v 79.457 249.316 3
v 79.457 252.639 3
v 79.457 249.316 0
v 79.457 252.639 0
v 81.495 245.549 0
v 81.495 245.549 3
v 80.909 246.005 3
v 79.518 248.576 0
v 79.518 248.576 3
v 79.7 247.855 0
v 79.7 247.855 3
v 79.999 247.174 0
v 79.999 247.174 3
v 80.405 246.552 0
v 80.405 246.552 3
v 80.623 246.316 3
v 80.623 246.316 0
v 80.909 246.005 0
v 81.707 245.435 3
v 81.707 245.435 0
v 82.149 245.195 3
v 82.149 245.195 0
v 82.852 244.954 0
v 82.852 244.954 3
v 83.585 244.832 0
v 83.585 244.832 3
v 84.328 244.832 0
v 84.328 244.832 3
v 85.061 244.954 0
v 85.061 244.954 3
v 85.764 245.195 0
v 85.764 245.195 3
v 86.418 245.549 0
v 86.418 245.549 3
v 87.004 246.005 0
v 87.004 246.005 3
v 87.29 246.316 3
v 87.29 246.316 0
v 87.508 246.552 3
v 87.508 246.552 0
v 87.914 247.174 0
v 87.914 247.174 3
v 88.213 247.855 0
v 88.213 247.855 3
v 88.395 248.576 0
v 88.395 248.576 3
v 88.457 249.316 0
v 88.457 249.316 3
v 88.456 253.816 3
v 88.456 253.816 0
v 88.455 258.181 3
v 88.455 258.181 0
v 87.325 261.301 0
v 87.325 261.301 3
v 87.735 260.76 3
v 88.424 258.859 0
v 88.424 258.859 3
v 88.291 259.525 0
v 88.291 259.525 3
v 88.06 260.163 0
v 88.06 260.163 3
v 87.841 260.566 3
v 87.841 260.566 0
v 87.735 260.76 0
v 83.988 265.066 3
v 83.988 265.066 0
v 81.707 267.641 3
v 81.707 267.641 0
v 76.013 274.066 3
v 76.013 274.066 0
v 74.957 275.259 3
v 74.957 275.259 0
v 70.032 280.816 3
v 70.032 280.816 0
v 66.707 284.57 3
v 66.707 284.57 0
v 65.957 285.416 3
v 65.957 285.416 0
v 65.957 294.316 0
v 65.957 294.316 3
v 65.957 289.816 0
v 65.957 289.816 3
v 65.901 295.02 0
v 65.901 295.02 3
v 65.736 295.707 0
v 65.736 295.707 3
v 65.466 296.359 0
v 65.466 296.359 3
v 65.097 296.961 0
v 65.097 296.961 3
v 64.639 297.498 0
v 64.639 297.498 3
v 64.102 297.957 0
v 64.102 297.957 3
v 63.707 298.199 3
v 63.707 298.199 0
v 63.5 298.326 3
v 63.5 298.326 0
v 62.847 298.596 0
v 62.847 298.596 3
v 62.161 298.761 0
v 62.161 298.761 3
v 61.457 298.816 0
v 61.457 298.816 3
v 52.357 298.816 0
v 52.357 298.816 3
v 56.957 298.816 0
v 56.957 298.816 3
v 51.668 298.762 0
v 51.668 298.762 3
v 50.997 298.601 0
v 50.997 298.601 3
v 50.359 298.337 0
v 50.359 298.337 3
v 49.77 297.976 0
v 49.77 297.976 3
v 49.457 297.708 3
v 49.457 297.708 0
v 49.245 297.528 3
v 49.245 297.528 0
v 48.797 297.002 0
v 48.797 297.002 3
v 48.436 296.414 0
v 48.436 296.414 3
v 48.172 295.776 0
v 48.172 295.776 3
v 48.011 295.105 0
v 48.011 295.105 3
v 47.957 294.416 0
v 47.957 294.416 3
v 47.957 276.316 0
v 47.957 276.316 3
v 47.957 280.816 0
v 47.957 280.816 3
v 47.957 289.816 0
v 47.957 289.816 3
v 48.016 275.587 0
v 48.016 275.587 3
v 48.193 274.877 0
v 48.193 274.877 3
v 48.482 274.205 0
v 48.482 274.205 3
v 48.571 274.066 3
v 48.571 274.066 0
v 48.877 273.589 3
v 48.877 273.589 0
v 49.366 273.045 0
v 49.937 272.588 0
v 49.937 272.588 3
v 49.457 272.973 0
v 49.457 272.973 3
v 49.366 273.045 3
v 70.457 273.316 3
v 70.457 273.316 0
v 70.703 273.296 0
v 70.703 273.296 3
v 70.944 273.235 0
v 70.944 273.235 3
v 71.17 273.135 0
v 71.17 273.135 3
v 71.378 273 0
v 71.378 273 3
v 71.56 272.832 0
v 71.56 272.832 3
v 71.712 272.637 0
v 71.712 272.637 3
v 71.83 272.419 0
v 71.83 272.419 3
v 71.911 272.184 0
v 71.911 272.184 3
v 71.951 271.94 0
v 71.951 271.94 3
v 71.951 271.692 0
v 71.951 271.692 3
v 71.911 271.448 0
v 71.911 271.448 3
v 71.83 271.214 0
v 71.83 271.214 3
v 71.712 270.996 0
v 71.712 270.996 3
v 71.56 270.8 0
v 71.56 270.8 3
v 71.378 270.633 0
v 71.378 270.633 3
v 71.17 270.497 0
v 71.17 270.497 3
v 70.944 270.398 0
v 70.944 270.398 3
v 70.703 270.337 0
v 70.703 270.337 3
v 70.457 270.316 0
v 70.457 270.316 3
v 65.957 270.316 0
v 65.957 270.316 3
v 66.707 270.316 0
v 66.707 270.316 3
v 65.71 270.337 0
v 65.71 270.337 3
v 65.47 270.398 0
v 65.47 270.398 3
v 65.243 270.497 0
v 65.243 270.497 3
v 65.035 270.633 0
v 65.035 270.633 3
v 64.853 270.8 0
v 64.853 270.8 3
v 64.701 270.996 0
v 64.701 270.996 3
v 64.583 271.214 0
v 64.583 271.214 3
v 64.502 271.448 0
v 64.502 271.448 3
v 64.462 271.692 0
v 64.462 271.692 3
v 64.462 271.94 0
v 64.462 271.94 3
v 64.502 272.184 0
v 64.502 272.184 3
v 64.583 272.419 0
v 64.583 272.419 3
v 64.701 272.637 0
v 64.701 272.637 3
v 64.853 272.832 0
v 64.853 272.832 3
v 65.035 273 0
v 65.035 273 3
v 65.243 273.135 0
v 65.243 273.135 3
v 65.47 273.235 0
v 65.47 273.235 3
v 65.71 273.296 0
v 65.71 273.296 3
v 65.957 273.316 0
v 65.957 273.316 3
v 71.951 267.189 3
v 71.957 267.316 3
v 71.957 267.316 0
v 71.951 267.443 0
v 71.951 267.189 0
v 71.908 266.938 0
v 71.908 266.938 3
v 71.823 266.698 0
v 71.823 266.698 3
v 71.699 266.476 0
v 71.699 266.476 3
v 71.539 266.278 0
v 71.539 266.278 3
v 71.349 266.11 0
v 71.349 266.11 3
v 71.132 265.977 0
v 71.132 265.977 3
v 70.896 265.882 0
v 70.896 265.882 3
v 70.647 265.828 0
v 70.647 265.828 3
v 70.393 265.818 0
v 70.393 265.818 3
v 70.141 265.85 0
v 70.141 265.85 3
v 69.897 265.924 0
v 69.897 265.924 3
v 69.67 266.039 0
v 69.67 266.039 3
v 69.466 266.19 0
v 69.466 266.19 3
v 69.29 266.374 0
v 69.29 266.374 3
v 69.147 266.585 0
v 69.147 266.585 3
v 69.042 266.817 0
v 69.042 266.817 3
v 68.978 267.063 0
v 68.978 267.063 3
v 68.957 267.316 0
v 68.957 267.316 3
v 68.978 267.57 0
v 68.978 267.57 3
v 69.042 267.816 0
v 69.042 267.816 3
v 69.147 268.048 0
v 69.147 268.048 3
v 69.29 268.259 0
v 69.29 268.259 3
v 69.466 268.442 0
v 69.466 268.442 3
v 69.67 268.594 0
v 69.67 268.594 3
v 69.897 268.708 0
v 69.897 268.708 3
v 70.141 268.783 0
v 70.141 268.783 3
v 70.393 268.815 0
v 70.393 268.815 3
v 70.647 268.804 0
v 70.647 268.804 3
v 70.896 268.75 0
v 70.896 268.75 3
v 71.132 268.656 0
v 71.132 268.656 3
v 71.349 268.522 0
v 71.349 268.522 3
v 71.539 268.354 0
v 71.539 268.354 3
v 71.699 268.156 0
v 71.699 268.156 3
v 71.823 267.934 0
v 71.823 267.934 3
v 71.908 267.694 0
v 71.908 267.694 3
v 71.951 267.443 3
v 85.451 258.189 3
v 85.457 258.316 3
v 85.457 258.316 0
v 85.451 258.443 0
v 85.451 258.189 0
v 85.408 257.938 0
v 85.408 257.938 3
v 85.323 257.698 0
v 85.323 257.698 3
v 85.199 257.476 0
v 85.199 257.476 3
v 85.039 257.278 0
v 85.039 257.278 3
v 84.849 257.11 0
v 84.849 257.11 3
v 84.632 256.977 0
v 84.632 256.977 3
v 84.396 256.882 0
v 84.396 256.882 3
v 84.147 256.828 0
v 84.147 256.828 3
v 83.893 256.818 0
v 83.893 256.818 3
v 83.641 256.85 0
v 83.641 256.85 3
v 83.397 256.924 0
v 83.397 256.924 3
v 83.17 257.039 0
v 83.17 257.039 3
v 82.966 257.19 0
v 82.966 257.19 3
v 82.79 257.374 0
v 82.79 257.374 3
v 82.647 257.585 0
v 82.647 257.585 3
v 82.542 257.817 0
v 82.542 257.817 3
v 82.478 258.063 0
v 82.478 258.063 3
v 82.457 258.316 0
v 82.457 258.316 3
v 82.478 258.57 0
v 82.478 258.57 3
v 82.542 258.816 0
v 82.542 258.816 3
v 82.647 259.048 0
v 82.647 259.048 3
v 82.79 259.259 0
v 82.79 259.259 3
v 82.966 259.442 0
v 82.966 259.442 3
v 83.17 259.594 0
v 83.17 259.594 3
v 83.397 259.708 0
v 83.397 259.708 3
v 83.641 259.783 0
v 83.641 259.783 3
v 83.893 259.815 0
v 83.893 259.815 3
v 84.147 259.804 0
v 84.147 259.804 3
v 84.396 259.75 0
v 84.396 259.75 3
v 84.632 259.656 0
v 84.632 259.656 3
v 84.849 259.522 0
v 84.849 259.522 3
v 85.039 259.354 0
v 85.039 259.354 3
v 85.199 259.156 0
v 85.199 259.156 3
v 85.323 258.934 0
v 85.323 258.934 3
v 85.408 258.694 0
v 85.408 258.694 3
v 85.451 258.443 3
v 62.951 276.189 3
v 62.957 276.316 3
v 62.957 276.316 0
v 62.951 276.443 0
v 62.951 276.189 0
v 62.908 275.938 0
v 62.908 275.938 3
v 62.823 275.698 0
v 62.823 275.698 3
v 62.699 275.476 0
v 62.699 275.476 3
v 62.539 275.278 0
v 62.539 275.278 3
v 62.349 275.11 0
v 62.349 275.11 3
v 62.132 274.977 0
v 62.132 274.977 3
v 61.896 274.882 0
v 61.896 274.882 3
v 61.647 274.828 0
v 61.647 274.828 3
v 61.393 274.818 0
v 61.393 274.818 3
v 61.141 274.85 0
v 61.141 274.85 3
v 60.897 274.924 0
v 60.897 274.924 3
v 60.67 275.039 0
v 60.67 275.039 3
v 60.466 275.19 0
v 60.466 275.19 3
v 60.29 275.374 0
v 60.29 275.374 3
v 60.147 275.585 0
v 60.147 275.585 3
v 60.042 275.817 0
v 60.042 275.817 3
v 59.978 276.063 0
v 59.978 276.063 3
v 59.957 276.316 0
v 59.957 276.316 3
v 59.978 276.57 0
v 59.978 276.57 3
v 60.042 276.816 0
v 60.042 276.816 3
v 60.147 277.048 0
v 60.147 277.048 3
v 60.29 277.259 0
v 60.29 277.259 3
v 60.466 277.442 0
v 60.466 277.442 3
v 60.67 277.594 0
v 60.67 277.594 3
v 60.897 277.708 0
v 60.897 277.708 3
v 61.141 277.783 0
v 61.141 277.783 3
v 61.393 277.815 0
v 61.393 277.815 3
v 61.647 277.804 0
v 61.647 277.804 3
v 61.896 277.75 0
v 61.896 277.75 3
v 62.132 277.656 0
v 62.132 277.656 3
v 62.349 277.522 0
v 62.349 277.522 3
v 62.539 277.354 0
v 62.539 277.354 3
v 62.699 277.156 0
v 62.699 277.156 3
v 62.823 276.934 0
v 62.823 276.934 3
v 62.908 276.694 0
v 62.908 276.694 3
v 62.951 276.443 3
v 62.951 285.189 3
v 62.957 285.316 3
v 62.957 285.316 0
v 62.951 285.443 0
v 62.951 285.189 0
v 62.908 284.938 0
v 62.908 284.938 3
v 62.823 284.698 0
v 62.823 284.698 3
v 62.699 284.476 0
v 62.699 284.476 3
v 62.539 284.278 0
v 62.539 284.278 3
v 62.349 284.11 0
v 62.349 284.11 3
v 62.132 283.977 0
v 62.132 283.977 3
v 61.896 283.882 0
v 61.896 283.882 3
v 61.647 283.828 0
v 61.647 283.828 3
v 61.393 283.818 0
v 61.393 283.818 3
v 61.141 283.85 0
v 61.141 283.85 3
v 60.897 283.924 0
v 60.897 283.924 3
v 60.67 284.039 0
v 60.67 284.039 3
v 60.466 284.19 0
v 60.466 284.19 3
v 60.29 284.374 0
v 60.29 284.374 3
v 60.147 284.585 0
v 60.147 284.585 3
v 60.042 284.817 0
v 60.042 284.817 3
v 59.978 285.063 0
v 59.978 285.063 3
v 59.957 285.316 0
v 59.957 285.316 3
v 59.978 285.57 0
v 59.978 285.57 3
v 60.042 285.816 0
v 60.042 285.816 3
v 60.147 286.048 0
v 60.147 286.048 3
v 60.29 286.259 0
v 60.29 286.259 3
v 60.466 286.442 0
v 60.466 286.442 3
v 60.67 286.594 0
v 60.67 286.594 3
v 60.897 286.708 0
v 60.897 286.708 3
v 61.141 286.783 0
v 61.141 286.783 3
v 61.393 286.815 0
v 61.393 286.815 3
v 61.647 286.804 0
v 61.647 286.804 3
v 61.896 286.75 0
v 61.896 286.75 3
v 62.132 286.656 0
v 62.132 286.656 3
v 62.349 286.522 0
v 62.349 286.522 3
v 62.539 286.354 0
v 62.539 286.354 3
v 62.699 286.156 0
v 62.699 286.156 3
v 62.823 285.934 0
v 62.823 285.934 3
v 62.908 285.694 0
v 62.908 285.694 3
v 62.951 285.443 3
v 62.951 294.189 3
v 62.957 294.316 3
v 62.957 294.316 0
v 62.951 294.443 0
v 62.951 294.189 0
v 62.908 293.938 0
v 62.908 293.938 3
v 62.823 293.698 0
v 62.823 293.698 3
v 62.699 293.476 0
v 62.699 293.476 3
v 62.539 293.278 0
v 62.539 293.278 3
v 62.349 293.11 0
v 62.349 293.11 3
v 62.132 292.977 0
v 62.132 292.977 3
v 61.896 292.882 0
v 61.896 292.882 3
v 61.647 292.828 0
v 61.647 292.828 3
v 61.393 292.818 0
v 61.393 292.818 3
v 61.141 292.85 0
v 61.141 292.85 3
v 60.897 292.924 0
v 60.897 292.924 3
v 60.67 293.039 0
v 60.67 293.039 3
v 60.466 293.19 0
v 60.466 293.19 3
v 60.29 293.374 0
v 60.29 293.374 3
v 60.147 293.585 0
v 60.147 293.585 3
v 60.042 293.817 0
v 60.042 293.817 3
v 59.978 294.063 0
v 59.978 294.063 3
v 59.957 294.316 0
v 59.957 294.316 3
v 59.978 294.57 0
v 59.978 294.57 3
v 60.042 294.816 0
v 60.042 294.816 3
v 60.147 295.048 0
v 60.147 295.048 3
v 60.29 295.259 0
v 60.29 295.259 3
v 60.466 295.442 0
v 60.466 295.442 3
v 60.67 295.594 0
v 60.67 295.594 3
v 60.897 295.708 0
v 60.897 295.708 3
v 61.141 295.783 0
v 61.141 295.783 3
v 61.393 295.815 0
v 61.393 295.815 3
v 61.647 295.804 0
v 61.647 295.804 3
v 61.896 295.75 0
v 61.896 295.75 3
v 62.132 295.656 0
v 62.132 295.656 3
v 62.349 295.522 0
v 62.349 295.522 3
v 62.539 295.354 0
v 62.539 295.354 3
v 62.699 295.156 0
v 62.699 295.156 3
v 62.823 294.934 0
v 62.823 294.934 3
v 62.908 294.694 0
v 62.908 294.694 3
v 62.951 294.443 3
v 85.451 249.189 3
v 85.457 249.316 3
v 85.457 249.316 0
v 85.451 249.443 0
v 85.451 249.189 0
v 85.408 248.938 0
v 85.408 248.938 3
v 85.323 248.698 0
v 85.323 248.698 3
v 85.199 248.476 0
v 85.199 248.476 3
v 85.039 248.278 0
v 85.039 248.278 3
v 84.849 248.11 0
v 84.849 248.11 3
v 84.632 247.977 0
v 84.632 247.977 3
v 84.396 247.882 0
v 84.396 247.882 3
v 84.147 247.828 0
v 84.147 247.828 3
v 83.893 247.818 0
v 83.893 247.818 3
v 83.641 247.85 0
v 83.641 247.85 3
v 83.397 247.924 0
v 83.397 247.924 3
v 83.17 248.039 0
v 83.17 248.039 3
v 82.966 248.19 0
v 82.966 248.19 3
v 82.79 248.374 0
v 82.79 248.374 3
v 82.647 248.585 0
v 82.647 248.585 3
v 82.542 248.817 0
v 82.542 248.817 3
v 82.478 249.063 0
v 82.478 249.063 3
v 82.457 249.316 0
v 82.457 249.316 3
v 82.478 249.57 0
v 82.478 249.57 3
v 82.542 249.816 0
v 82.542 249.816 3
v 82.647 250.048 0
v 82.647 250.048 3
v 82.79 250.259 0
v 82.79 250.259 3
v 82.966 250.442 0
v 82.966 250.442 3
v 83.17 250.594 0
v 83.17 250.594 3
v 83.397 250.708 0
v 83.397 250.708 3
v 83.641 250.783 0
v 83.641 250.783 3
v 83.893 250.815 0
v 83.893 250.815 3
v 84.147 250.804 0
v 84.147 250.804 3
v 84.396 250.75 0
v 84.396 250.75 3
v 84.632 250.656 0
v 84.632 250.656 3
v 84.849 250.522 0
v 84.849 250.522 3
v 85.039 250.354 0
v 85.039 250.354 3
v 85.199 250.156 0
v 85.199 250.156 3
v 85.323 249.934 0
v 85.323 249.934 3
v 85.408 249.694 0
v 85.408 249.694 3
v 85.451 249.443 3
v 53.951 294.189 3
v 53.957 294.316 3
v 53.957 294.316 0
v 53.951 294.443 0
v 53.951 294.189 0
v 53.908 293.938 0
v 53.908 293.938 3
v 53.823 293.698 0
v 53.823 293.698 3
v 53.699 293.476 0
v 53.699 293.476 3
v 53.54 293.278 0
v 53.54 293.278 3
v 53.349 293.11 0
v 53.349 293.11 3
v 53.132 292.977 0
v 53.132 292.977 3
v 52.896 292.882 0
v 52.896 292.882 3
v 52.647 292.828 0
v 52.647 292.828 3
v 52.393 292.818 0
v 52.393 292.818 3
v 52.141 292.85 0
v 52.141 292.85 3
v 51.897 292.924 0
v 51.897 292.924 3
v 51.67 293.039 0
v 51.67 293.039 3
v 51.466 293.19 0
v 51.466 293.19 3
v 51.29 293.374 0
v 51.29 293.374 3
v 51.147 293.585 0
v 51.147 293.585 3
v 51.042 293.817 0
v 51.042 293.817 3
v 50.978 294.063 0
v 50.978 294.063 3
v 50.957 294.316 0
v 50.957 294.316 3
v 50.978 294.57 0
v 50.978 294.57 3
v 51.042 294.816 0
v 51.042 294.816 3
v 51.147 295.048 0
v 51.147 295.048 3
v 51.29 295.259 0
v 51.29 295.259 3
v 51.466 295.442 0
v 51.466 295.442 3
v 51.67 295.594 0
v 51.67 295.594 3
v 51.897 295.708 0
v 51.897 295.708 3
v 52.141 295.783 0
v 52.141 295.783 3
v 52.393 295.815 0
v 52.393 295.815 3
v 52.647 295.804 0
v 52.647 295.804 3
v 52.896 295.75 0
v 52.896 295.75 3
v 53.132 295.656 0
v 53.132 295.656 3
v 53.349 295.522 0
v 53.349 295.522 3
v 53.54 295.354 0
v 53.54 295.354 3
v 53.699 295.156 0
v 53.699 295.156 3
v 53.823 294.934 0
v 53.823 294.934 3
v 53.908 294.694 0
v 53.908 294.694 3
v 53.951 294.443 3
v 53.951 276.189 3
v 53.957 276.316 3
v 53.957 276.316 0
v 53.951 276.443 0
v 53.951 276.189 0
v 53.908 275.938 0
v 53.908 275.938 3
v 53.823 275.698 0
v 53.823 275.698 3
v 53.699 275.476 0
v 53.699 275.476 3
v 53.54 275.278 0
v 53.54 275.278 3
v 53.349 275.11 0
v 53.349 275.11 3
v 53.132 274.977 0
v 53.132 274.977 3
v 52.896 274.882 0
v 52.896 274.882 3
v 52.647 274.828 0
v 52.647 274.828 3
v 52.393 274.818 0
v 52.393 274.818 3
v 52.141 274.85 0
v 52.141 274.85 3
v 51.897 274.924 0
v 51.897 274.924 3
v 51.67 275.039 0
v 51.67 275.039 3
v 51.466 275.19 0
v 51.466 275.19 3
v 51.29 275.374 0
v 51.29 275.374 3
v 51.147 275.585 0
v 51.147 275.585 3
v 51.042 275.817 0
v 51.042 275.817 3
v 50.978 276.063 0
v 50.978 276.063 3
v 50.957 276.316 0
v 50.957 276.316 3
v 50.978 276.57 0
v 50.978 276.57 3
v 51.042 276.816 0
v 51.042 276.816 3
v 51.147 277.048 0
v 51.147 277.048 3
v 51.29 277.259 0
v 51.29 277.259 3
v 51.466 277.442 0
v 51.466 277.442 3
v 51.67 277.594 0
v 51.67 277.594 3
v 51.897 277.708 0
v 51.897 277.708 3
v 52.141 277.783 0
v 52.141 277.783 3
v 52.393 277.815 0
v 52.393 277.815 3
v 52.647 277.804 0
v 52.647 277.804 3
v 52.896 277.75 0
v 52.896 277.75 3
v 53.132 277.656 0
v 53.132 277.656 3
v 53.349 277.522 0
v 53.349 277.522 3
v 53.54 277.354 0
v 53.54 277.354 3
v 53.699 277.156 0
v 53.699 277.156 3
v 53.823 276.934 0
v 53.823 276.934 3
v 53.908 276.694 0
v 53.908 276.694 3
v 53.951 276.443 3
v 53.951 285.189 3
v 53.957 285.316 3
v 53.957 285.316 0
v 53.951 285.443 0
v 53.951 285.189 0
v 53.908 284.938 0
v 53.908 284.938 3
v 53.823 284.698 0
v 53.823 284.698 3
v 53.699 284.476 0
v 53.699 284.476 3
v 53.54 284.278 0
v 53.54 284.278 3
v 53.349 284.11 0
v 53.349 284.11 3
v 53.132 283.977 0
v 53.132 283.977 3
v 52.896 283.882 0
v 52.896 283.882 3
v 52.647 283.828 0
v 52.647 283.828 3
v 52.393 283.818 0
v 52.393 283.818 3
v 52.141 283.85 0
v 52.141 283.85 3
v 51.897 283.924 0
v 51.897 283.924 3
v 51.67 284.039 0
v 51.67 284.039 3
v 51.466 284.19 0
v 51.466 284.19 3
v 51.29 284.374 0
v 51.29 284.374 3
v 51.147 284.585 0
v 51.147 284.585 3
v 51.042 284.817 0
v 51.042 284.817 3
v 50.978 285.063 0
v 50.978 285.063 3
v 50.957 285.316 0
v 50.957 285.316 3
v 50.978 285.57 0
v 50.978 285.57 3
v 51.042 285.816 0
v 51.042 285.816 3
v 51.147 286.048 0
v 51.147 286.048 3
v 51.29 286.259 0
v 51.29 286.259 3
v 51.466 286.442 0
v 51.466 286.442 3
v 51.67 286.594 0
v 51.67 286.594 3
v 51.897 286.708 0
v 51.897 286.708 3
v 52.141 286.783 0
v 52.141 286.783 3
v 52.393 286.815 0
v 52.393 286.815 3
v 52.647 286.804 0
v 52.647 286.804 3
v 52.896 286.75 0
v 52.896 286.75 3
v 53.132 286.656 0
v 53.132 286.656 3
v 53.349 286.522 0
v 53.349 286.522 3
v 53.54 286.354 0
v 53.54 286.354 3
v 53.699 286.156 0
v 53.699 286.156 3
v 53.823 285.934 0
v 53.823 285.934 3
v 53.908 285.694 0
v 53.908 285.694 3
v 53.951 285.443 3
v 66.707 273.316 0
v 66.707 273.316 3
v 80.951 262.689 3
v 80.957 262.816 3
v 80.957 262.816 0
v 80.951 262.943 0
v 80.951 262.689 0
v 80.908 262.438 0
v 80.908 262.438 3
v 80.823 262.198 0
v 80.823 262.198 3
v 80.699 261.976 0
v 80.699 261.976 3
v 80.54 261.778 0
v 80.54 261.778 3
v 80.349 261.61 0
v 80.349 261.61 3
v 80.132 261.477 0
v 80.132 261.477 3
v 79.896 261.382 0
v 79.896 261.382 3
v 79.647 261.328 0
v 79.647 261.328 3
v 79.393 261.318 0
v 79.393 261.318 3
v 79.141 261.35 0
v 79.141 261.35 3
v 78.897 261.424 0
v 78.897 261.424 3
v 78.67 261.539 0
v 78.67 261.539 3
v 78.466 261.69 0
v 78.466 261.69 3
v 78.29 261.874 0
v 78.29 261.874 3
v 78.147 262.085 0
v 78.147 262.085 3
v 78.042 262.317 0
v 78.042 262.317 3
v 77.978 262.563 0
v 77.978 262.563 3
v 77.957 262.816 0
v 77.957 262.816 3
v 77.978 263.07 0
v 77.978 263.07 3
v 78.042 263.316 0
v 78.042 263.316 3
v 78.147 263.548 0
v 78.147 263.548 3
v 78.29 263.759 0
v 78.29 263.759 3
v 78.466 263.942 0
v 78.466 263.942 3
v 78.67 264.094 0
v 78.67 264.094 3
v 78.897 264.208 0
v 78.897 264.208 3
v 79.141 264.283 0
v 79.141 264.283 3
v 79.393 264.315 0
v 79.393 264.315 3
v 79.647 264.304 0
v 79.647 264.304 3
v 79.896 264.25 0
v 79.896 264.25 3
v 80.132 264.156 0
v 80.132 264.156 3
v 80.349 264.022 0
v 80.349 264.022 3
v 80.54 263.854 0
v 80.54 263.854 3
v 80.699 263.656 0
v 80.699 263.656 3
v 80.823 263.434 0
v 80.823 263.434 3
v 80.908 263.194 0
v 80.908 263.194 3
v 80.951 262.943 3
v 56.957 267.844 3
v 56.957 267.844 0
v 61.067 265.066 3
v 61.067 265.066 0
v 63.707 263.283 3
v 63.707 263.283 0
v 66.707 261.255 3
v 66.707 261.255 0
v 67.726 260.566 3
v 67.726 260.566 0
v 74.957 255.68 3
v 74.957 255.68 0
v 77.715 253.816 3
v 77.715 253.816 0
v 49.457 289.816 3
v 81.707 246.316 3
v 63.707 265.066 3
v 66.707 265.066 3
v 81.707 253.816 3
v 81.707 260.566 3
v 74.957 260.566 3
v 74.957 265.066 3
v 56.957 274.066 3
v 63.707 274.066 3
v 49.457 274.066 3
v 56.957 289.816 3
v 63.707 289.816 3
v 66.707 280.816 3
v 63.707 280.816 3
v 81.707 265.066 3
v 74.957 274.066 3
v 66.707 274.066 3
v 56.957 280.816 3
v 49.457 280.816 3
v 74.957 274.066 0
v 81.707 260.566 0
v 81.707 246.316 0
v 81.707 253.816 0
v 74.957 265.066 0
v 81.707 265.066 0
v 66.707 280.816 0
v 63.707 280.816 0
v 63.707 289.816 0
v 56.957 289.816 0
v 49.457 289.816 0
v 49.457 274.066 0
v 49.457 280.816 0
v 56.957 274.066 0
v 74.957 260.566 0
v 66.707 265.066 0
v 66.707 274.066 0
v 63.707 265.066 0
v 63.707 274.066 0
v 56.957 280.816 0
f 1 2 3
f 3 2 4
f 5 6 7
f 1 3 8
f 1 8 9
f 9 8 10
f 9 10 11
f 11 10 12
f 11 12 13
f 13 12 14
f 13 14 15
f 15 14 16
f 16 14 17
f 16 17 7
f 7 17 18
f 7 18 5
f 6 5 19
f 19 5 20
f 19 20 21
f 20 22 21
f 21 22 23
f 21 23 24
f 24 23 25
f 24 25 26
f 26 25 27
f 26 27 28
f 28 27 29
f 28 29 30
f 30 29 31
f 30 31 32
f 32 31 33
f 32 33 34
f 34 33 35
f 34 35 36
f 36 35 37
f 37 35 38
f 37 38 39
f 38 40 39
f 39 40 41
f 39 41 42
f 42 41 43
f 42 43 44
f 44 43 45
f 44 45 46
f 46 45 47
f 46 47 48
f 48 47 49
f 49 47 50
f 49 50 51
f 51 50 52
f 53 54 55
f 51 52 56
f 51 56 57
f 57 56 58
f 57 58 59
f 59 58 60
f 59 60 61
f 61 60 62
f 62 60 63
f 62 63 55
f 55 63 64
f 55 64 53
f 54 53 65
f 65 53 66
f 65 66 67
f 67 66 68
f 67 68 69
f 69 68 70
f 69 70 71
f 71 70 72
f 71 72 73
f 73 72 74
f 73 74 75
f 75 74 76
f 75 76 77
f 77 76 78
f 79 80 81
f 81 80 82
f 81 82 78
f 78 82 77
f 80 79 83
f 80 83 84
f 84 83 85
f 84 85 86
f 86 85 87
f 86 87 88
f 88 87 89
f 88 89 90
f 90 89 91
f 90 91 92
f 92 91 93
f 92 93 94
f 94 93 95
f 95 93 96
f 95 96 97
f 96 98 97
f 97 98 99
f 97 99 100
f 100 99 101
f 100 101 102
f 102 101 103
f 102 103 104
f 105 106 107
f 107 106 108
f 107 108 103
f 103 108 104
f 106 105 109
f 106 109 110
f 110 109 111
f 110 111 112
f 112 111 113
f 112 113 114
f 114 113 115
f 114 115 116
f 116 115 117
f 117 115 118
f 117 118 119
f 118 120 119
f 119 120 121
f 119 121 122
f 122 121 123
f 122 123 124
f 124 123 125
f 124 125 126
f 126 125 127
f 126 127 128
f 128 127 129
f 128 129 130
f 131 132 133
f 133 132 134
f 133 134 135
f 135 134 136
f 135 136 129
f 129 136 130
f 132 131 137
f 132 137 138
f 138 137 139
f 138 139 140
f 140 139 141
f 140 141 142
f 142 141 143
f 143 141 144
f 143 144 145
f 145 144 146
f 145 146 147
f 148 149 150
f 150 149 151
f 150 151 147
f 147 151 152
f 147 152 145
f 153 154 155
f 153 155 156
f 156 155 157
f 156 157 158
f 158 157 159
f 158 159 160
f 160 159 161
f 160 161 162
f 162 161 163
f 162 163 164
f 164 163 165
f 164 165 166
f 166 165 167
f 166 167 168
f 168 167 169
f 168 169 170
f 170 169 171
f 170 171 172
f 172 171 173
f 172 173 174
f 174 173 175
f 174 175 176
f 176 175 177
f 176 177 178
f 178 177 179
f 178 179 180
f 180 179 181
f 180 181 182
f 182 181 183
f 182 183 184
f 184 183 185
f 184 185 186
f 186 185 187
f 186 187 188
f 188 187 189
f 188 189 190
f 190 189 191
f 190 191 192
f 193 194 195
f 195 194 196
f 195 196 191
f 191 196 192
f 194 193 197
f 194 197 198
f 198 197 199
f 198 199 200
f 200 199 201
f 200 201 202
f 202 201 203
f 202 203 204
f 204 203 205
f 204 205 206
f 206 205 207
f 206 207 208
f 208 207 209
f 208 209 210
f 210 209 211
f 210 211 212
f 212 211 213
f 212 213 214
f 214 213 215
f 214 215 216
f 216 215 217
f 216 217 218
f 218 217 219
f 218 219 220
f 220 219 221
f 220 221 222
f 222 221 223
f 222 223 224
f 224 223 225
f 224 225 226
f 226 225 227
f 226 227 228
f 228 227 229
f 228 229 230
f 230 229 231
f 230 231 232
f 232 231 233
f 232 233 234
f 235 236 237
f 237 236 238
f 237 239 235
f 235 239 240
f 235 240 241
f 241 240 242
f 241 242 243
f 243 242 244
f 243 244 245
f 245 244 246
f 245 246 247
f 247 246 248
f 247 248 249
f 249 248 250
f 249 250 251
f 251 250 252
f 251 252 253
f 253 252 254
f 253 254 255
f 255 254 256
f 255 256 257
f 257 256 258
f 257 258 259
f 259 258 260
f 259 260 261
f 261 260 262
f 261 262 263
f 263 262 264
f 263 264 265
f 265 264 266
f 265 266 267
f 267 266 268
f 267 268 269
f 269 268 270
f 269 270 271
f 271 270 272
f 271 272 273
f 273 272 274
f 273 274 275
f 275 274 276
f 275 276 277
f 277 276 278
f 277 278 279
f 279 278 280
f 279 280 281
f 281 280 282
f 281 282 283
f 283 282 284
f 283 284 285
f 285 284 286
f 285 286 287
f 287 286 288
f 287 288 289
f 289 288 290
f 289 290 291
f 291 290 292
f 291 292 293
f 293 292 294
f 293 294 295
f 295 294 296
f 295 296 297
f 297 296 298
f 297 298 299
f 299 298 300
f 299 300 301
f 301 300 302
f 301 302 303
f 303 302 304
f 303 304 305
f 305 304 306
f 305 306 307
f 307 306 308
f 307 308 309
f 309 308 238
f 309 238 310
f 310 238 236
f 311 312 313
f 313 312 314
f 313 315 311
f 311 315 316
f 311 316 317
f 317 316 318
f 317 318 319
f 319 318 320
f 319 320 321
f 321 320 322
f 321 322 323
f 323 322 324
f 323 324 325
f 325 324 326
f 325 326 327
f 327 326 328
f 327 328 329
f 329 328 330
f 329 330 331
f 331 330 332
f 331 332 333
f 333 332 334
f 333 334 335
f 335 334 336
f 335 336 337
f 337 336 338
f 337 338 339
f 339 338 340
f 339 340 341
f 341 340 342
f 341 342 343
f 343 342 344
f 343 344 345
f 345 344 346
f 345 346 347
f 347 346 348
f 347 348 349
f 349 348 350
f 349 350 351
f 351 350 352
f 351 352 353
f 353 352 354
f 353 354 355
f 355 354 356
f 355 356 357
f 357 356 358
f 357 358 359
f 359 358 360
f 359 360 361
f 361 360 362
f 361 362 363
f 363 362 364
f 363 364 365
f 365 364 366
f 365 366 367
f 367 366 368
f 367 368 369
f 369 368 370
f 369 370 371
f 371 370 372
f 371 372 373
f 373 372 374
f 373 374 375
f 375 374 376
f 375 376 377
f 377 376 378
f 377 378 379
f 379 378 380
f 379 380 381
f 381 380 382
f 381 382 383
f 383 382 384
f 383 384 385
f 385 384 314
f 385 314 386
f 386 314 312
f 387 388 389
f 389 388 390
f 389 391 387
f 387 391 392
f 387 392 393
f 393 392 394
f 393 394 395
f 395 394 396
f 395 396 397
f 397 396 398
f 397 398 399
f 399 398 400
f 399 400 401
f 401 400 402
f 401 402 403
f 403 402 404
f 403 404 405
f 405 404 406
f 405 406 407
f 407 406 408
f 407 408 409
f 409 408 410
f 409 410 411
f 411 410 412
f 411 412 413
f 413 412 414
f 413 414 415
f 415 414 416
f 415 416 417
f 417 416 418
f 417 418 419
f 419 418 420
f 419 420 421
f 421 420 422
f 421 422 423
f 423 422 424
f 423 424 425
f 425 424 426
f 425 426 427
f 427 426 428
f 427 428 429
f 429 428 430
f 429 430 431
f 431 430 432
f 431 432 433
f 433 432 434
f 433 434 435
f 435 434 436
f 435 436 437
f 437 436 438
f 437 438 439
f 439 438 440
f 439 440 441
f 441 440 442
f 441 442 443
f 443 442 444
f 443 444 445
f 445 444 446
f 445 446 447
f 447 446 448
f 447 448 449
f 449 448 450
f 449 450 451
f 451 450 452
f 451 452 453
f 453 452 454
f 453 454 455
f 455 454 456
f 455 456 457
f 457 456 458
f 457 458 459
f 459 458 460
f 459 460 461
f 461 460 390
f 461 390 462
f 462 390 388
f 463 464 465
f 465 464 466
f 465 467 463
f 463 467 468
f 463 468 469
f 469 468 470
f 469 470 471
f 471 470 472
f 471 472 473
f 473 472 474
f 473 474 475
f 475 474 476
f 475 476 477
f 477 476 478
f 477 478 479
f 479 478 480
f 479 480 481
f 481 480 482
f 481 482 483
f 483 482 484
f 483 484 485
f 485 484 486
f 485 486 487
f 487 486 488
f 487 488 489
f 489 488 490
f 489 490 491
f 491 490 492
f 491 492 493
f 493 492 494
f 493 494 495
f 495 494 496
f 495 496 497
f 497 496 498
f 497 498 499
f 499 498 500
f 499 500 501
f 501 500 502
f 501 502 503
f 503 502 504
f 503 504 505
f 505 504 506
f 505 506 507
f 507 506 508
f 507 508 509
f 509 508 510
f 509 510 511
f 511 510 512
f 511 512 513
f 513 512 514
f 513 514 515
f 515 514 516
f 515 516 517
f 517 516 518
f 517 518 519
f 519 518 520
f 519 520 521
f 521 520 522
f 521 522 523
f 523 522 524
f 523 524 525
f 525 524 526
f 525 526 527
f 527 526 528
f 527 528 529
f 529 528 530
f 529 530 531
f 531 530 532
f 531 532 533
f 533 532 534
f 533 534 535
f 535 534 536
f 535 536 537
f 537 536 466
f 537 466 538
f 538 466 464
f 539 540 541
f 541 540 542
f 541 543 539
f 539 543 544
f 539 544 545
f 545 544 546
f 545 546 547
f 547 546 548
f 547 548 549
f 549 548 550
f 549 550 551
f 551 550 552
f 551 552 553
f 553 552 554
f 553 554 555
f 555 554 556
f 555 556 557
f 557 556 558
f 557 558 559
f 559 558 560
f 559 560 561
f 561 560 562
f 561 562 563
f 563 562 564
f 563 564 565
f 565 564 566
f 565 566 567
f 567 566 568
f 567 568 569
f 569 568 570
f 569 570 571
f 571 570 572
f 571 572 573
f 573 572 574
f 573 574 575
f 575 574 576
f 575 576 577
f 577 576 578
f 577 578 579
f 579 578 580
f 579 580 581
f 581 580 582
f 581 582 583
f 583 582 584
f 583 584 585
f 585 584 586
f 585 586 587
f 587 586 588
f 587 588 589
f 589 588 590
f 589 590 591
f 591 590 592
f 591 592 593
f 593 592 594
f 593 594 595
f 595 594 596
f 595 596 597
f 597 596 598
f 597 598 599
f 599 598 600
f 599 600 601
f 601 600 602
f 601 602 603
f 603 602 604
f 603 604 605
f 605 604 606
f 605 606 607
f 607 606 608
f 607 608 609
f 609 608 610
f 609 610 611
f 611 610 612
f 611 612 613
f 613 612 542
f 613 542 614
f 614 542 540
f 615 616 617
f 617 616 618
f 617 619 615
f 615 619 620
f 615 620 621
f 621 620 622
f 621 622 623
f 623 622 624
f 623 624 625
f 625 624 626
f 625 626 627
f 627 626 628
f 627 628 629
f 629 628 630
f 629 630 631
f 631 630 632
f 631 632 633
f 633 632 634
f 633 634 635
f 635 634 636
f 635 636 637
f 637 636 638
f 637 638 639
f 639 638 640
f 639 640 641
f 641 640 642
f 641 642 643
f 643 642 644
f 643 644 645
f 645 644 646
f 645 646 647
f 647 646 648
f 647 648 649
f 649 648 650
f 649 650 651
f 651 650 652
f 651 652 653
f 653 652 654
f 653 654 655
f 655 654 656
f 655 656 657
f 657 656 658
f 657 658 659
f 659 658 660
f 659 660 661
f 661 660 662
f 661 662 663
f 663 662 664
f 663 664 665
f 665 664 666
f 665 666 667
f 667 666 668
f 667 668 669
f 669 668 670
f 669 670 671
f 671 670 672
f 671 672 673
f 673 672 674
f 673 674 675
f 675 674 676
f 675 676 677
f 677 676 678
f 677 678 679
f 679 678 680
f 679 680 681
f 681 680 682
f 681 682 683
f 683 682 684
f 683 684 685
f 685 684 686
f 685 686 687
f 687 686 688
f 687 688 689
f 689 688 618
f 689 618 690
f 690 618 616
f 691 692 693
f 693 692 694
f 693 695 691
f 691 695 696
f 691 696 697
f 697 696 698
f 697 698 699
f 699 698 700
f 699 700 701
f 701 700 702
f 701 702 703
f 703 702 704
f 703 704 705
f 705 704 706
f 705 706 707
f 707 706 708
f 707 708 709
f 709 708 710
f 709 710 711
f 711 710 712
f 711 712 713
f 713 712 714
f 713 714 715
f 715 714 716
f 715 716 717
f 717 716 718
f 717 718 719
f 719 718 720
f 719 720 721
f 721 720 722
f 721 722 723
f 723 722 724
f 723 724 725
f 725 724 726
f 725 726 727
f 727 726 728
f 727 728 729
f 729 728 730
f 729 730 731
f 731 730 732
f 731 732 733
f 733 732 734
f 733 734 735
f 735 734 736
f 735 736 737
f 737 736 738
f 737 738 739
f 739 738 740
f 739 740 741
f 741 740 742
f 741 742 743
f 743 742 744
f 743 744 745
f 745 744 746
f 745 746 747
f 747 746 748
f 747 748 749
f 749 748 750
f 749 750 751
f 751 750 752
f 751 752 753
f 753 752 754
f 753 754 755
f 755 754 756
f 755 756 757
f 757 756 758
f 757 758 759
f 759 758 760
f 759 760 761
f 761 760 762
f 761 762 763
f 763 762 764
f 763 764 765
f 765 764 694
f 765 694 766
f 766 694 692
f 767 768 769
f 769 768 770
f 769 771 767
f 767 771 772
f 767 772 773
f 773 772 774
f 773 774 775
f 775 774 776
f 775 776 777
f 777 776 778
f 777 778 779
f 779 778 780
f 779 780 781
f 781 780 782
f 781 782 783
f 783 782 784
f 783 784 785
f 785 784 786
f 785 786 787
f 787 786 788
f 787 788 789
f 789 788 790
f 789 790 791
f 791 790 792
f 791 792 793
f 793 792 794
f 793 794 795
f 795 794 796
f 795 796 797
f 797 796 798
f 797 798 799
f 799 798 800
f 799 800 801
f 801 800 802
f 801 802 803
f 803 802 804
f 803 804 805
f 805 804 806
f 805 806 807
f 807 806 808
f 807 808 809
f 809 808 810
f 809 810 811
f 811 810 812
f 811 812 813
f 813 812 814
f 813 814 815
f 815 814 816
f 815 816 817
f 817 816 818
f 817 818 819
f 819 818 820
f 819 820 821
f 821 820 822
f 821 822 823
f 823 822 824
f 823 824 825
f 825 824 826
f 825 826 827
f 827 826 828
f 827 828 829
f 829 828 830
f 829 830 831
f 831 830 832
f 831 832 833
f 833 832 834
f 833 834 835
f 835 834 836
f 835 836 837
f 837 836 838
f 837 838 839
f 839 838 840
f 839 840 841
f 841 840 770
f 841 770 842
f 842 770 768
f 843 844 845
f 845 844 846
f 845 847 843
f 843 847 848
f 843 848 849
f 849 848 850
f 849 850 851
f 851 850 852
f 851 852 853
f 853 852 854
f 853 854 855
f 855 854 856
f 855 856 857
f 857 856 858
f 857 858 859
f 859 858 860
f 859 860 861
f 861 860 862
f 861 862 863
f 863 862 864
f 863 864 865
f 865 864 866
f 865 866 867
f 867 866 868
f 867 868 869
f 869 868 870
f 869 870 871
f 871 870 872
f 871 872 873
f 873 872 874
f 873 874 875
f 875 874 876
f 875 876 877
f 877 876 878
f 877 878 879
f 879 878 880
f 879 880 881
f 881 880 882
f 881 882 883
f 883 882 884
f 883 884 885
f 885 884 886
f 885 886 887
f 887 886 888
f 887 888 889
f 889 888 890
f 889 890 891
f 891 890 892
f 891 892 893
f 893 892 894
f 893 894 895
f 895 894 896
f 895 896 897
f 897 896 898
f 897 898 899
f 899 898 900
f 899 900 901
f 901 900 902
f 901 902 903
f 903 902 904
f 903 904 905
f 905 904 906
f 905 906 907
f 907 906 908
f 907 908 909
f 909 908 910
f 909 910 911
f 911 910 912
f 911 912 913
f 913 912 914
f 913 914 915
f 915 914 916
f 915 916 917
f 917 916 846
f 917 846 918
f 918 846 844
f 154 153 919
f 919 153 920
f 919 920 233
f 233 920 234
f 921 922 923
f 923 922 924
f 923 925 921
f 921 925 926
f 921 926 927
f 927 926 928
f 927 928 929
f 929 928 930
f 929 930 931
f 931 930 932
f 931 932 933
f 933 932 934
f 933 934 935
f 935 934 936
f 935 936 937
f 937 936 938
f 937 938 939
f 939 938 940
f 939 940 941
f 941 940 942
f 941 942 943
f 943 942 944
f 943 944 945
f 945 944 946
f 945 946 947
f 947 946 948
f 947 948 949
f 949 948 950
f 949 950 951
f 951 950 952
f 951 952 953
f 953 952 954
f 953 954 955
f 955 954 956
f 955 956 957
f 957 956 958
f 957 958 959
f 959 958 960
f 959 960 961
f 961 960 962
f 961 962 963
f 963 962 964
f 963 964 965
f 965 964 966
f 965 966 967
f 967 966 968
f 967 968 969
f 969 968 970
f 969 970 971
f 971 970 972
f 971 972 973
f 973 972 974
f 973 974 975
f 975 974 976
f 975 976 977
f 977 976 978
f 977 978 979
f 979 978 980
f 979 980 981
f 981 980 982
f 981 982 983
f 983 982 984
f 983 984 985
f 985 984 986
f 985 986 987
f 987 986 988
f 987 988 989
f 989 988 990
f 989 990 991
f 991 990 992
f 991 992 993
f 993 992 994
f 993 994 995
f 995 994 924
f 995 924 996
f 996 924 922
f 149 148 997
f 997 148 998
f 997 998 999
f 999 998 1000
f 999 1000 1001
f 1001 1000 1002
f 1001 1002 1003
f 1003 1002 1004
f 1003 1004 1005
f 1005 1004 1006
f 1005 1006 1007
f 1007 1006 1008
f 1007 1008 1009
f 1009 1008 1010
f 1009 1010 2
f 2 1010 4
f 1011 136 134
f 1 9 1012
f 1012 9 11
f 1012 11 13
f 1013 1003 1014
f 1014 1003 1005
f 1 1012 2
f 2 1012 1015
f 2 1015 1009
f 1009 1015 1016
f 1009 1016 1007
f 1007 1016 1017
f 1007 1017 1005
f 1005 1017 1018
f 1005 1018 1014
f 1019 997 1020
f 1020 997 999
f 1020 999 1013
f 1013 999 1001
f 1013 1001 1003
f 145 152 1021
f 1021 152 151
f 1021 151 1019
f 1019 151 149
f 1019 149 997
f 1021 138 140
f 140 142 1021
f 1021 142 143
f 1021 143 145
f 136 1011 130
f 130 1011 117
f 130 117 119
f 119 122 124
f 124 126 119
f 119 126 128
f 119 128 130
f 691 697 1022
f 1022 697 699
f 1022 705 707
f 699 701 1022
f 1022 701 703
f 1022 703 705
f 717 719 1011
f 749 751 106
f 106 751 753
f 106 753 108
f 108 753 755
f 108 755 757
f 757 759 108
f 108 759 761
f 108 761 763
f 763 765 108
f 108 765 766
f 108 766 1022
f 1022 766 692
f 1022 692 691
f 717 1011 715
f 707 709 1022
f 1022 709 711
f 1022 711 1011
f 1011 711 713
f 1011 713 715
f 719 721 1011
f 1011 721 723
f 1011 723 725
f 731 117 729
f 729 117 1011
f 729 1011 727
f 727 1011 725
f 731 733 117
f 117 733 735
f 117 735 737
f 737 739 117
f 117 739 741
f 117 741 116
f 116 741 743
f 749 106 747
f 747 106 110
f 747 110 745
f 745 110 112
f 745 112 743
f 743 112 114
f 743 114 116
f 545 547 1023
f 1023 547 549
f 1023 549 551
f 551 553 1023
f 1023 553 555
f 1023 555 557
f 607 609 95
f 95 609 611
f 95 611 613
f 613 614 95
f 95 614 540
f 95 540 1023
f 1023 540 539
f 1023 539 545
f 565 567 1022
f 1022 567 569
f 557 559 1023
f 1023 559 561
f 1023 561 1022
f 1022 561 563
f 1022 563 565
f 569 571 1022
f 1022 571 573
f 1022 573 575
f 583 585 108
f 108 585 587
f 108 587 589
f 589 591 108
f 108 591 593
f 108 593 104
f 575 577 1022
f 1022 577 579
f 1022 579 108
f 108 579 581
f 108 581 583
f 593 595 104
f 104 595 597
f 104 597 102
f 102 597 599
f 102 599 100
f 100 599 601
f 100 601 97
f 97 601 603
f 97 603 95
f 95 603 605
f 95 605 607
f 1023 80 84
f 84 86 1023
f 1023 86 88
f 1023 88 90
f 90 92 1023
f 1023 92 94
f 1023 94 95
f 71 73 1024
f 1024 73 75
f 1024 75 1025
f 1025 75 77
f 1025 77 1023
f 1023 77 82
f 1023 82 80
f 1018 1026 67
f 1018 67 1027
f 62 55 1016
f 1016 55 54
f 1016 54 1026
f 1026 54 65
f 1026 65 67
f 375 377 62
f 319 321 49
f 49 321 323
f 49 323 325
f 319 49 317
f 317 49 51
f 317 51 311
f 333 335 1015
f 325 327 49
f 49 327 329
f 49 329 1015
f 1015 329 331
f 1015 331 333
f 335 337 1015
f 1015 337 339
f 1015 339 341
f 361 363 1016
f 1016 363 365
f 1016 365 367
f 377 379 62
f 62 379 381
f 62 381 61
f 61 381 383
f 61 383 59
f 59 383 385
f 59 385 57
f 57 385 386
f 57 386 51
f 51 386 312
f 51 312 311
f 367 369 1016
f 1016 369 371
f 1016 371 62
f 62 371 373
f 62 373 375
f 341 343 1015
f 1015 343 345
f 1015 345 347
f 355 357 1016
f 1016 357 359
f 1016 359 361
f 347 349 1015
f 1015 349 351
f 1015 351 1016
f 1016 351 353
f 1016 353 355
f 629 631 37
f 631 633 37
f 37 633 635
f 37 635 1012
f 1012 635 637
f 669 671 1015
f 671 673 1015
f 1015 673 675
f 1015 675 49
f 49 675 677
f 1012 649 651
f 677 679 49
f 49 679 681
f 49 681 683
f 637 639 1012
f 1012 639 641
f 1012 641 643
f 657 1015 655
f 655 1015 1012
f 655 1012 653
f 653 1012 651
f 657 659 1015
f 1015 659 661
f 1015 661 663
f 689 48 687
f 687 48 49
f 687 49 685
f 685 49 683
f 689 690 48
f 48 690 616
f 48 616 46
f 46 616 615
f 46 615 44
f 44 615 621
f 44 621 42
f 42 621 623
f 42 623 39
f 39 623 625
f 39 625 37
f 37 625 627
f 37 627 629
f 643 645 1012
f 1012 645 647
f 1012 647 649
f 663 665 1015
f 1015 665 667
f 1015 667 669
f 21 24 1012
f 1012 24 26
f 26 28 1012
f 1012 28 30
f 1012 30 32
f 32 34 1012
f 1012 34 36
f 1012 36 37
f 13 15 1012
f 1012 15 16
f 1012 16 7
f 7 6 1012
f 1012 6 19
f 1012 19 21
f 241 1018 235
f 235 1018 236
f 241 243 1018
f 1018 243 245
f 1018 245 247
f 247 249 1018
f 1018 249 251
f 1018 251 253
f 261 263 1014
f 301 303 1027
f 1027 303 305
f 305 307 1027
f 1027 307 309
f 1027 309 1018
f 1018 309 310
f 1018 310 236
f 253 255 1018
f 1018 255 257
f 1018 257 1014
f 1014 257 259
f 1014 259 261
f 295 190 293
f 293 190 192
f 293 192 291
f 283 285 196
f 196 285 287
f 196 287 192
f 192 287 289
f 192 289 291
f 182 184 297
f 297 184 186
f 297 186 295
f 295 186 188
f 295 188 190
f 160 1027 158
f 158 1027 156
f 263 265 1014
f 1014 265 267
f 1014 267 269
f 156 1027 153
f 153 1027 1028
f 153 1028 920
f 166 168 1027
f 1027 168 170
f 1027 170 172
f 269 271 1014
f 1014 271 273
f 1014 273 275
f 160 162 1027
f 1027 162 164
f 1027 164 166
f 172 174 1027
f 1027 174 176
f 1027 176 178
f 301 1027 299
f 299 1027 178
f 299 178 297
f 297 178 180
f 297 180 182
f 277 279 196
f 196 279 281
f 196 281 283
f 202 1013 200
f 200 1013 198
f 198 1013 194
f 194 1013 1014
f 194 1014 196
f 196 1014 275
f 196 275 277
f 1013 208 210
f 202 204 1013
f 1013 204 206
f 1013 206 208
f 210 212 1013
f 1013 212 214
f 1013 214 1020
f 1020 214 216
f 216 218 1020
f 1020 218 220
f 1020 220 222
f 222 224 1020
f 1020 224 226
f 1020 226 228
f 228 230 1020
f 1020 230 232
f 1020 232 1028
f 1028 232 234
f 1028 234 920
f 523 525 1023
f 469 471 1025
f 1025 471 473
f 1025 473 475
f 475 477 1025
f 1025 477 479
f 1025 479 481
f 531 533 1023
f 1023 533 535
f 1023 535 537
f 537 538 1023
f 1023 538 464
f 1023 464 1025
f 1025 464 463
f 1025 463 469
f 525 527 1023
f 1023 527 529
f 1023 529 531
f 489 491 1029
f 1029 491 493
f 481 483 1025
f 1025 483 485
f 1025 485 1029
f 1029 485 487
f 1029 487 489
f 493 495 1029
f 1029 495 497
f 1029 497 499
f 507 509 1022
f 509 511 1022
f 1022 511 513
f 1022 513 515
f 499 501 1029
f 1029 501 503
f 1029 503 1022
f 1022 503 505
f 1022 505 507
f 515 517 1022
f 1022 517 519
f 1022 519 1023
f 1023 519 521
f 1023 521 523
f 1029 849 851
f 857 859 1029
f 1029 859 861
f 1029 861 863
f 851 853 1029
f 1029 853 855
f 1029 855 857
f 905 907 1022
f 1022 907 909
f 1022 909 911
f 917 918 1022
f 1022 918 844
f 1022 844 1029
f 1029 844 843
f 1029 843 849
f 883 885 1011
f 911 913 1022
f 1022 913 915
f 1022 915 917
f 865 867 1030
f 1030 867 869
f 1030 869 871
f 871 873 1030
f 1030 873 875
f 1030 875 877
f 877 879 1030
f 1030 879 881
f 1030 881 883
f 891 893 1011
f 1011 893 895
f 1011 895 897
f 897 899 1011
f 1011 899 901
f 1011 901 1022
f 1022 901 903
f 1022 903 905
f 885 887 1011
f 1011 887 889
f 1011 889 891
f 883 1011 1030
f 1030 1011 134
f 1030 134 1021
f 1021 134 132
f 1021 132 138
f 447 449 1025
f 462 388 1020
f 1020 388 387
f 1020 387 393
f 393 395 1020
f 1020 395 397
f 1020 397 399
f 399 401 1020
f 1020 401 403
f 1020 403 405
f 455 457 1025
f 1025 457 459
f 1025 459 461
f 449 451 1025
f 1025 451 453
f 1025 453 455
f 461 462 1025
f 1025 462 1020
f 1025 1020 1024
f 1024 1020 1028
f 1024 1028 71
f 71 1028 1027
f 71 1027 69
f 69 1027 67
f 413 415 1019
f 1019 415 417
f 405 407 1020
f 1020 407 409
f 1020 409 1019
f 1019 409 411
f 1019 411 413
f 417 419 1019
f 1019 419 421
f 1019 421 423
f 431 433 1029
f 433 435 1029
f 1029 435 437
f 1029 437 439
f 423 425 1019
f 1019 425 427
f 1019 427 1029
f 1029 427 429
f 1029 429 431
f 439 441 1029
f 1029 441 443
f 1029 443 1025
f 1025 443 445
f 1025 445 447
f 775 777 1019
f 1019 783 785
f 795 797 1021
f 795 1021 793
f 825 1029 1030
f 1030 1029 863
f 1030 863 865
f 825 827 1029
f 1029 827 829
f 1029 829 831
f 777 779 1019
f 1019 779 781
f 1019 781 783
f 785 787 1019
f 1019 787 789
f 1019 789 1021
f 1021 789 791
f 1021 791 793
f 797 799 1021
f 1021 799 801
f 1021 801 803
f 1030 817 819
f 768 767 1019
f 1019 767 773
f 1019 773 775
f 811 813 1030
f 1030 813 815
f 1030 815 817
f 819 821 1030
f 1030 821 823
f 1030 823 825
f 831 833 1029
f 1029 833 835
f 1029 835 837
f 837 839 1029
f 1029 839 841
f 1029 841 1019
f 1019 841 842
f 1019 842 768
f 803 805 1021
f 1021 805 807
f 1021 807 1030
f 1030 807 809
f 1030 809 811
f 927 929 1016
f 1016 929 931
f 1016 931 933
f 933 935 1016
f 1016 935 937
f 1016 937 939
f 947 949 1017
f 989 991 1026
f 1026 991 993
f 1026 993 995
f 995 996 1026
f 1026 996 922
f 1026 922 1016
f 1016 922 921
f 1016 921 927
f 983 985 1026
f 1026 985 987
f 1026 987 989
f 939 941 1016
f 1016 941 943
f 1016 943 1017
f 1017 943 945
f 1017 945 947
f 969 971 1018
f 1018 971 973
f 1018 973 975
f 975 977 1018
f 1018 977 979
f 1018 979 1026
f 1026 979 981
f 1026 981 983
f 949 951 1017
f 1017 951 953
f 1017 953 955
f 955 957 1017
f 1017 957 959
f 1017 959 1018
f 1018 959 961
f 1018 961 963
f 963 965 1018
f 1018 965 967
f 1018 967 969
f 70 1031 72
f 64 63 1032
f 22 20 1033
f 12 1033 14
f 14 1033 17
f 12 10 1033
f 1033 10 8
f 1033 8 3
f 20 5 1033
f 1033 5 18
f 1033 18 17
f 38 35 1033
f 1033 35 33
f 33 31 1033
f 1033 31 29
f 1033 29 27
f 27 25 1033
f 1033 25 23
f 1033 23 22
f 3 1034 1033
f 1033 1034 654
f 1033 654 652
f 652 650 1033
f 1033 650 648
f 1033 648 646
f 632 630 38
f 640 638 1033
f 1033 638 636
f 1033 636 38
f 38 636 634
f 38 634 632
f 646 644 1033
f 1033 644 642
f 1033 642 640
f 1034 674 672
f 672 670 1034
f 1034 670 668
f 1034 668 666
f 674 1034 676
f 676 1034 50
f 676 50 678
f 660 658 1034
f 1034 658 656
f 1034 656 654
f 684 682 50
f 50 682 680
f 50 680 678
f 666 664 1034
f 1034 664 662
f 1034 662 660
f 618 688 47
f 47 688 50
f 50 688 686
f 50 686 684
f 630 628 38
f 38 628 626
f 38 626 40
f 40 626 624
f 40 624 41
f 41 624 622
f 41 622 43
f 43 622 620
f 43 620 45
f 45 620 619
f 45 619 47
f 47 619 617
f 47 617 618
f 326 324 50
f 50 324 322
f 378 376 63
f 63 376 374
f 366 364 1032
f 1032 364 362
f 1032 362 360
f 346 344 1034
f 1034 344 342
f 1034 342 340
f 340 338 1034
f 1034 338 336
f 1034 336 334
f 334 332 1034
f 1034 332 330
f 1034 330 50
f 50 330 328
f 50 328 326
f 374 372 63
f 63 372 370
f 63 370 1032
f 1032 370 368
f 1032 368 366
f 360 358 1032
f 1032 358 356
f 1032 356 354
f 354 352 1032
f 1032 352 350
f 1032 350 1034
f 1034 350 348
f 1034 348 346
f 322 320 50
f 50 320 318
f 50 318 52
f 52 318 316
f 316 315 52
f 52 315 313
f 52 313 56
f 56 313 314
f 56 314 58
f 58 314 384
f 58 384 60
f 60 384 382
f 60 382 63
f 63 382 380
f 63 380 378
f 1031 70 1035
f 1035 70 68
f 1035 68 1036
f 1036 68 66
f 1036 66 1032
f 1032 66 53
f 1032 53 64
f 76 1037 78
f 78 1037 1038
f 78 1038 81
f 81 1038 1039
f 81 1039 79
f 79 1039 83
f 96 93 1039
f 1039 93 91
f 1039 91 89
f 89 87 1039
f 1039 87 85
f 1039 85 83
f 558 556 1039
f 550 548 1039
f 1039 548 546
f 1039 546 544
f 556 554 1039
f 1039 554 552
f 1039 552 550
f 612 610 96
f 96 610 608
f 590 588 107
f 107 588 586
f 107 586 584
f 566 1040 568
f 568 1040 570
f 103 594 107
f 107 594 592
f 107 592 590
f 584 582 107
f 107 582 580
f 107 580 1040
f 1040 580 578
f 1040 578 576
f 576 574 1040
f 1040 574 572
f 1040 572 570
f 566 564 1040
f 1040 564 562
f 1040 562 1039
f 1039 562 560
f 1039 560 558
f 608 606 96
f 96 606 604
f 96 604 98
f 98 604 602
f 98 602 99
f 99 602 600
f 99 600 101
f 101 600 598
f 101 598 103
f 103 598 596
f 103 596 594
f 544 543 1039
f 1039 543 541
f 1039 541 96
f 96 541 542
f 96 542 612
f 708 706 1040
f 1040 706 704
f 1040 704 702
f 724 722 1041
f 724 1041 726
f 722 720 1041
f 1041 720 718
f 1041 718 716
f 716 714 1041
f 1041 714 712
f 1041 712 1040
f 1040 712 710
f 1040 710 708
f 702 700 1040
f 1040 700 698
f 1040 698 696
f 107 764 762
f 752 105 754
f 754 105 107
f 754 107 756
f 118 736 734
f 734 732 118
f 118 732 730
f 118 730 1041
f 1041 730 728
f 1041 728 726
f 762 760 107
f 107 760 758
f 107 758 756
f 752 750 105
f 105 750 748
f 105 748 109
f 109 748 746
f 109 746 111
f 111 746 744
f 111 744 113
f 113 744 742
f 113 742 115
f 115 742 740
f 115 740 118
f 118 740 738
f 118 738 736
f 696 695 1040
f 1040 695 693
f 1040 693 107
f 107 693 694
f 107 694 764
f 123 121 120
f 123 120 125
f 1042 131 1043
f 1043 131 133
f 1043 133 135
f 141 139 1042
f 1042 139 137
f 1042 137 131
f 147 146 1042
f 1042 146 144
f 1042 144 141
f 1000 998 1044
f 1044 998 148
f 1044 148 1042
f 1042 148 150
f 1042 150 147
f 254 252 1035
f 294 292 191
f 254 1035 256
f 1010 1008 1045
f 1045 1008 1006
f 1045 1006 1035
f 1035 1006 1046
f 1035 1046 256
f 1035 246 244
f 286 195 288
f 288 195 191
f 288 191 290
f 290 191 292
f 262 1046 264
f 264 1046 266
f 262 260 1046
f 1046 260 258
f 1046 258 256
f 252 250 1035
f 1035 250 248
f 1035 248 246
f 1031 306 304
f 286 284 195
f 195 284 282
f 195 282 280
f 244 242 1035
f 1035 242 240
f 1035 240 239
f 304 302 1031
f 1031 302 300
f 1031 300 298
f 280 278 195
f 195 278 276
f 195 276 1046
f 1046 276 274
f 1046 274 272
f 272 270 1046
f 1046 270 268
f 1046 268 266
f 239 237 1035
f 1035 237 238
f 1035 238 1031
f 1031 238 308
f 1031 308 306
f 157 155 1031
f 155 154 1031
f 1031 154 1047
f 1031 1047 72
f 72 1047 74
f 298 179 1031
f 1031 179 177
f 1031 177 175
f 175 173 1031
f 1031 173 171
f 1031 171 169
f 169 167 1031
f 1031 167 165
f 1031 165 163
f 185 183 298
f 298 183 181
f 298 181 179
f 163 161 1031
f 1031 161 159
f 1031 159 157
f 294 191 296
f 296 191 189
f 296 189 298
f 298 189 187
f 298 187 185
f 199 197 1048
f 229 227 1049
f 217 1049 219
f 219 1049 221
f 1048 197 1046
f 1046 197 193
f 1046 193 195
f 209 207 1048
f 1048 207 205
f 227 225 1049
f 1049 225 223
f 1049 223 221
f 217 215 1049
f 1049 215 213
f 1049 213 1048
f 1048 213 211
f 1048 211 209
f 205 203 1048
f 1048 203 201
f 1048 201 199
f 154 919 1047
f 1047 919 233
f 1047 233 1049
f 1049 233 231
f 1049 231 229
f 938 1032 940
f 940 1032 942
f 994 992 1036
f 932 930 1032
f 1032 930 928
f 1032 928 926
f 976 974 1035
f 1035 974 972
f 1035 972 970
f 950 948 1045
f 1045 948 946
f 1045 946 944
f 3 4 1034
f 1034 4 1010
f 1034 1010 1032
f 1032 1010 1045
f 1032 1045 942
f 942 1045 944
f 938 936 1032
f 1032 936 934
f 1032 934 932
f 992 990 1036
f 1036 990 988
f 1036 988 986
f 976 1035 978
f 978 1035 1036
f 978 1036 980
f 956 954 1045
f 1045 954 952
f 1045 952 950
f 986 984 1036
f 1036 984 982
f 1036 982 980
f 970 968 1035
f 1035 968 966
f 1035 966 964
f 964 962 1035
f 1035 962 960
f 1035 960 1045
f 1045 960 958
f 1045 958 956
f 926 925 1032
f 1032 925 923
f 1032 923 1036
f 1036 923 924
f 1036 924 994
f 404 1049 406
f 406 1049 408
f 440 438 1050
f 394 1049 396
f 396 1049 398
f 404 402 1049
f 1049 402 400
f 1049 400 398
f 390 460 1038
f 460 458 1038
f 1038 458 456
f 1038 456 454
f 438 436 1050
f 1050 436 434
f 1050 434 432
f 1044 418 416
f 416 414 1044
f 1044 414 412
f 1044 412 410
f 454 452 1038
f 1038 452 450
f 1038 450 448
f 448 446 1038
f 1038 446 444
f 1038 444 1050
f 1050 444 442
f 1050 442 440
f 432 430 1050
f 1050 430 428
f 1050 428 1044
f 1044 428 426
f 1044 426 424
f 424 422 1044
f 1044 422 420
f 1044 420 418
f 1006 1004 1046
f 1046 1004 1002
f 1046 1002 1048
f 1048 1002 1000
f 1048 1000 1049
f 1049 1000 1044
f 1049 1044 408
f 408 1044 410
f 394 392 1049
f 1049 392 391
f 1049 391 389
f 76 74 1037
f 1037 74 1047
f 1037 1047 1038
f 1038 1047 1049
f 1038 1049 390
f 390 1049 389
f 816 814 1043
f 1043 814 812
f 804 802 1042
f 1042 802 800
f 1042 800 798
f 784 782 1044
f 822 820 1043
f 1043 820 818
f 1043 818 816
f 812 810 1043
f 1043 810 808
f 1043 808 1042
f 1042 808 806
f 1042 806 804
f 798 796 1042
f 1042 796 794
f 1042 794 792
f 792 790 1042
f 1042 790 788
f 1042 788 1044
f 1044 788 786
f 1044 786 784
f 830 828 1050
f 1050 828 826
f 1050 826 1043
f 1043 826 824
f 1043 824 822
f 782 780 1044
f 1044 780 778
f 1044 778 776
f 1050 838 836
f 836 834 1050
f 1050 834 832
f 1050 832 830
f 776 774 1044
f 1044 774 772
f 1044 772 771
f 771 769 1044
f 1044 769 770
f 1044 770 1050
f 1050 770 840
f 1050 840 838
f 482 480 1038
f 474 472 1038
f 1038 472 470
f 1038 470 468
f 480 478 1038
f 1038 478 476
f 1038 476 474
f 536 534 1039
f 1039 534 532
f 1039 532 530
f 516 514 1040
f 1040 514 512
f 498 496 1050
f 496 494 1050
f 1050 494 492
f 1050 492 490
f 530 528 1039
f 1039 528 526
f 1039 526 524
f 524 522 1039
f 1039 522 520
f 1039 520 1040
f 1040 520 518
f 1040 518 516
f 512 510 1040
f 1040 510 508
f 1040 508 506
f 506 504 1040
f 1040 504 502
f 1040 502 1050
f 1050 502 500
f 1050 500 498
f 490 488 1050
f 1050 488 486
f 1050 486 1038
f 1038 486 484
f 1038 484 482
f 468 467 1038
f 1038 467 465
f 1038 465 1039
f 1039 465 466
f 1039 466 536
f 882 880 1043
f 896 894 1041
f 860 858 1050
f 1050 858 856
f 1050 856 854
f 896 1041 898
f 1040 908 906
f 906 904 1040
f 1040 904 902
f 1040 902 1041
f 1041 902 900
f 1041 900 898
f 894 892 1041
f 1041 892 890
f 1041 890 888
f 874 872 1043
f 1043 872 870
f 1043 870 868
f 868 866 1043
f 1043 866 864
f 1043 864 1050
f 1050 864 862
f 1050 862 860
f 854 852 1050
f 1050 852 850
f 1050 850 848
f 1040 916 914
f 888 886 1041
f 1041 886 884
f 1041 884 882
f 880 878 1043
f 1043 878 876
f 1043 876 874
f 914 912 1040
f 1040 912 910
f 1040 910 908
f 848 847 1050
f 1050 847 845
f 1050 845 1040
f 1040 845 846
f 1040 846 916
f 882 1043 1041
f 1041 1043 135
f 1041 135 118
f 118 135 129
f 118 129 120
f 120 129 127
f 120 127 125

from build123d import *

# Parameters (mm, degrees)
MODEL_R                 = 1.5
SALIENTE_EXTRUIR1_DEPTH = 3


with BuildPart() as part:
    # Model → Saliente-Extruir1 (new body)
    with BuildSketch(Plane.XY):
        with BuildLine():
            Line((47.956564936, 294.416156902), (47.956564936, 276.316156902))
            ThreePointArc((47.956564936, 276.316156902), (48.482384187, 274.205259611), (49.936959325, 272.587673623))
            Line((49.936959325, 272.587673623), (70.456564936, 258.72109315))
            Line((70.456564936, 258.72109315), (79.456564936, 252.639142716))
            Line((79.456564936, 252.639142716), (79.456564936, 249.316156902))
            ThreePointArc((79.456564936, 249.316156902), (83.956564936, 244.816156902), (88.456564936, 249.316156902))
            Line((88.456564936, 249.316156902), (88.456564456, 249.318235809))
            Line((88.456564456, 249.318235809), (88.454517382, 258.180422621))
            ThreePointArc((88.454517382, 258.180422621), (88.187667044, 259.848401972), (87.32462533, 261.300477459))
            Line((87.32462533, 261.300477459), (65.956564936, 285.416156902))
            Line((65.956564936, 285.416156902), (65.956564936, 294.316156902))
            ThreePointArc((65.956564936, 294.316156902), (64.638545451, 297.498137417), (61.456564936, 298.816156902))
            Line((61.456564936, 298.816156902), (52.356564936, 298.816156902))
            ThreePointArc((52.356564936, 298.816156902), (49.245295099, 297.527426739), (47.956564936, 294.416156902))
        make_face()
        with Locations((83.956564936, 249.316156902)):
            Circle(MODEL_R, mode=Mode.SUBTRACT)
        with Locations((70.456564936, 267.316156902)):
            Circle(MODEL_R, mode=Mode.SUBTRACT)
        with Locations((79.456564936, 262.816156902)):
            Circle(MODEL_R, mode=Mode.SUBTRACT)
        with Locations((83.956564936, 258.316156902)):
            Circle(MODEL_R, mode=Mode.SUBTRACT)
        with Locations((52.456564936, 276.316156902)):
            Circle(MODEL_R, mode=Mode.SUBTRACT)
        with Locations((61.456564936, 276.316156902)):
            Circle(MODEL_R, mode=Mode.SUBTRACT)
        with BuildLine():
            ThreePointArc((65.956564936, 270.316156902), (64.456564936, 271.816156902), (65.956564936, 273.316156902))
            Line((65.956564936, 273.316156902), (70.456564936, 273.316156902))
            ThreePointArc((70.456564936, 273.316156902), (71.956564936, 271.816156902), (70.456564936, 270.316156902))
            Line((70.456564936, 270.316156902), (65.956564936, 270.316156902))
        make_face(mode=Mode.SUBTRACT)
        with Locations((52.456564936, 285.316156902)):
            Circle(MODEL_R, mode=Mode.SUBTRACT)
        with Locations((52.456564936, 294.316156902)):
            Circle(MODEL_R, mode=Mode.SUBTRACT)
        with Locations((61.456564936, 285.316156902)):
            Circle(MODEL_R, mode=Mode.SUBTRACT)
        with Locations((61.456564936, 294.316156902)):
            Circle(MODEL_R, mode=Mode.SUBTRACT)
    extrude(amount=SALIENTE_EXTRUIR1_DEPTH)


solid = part.part
